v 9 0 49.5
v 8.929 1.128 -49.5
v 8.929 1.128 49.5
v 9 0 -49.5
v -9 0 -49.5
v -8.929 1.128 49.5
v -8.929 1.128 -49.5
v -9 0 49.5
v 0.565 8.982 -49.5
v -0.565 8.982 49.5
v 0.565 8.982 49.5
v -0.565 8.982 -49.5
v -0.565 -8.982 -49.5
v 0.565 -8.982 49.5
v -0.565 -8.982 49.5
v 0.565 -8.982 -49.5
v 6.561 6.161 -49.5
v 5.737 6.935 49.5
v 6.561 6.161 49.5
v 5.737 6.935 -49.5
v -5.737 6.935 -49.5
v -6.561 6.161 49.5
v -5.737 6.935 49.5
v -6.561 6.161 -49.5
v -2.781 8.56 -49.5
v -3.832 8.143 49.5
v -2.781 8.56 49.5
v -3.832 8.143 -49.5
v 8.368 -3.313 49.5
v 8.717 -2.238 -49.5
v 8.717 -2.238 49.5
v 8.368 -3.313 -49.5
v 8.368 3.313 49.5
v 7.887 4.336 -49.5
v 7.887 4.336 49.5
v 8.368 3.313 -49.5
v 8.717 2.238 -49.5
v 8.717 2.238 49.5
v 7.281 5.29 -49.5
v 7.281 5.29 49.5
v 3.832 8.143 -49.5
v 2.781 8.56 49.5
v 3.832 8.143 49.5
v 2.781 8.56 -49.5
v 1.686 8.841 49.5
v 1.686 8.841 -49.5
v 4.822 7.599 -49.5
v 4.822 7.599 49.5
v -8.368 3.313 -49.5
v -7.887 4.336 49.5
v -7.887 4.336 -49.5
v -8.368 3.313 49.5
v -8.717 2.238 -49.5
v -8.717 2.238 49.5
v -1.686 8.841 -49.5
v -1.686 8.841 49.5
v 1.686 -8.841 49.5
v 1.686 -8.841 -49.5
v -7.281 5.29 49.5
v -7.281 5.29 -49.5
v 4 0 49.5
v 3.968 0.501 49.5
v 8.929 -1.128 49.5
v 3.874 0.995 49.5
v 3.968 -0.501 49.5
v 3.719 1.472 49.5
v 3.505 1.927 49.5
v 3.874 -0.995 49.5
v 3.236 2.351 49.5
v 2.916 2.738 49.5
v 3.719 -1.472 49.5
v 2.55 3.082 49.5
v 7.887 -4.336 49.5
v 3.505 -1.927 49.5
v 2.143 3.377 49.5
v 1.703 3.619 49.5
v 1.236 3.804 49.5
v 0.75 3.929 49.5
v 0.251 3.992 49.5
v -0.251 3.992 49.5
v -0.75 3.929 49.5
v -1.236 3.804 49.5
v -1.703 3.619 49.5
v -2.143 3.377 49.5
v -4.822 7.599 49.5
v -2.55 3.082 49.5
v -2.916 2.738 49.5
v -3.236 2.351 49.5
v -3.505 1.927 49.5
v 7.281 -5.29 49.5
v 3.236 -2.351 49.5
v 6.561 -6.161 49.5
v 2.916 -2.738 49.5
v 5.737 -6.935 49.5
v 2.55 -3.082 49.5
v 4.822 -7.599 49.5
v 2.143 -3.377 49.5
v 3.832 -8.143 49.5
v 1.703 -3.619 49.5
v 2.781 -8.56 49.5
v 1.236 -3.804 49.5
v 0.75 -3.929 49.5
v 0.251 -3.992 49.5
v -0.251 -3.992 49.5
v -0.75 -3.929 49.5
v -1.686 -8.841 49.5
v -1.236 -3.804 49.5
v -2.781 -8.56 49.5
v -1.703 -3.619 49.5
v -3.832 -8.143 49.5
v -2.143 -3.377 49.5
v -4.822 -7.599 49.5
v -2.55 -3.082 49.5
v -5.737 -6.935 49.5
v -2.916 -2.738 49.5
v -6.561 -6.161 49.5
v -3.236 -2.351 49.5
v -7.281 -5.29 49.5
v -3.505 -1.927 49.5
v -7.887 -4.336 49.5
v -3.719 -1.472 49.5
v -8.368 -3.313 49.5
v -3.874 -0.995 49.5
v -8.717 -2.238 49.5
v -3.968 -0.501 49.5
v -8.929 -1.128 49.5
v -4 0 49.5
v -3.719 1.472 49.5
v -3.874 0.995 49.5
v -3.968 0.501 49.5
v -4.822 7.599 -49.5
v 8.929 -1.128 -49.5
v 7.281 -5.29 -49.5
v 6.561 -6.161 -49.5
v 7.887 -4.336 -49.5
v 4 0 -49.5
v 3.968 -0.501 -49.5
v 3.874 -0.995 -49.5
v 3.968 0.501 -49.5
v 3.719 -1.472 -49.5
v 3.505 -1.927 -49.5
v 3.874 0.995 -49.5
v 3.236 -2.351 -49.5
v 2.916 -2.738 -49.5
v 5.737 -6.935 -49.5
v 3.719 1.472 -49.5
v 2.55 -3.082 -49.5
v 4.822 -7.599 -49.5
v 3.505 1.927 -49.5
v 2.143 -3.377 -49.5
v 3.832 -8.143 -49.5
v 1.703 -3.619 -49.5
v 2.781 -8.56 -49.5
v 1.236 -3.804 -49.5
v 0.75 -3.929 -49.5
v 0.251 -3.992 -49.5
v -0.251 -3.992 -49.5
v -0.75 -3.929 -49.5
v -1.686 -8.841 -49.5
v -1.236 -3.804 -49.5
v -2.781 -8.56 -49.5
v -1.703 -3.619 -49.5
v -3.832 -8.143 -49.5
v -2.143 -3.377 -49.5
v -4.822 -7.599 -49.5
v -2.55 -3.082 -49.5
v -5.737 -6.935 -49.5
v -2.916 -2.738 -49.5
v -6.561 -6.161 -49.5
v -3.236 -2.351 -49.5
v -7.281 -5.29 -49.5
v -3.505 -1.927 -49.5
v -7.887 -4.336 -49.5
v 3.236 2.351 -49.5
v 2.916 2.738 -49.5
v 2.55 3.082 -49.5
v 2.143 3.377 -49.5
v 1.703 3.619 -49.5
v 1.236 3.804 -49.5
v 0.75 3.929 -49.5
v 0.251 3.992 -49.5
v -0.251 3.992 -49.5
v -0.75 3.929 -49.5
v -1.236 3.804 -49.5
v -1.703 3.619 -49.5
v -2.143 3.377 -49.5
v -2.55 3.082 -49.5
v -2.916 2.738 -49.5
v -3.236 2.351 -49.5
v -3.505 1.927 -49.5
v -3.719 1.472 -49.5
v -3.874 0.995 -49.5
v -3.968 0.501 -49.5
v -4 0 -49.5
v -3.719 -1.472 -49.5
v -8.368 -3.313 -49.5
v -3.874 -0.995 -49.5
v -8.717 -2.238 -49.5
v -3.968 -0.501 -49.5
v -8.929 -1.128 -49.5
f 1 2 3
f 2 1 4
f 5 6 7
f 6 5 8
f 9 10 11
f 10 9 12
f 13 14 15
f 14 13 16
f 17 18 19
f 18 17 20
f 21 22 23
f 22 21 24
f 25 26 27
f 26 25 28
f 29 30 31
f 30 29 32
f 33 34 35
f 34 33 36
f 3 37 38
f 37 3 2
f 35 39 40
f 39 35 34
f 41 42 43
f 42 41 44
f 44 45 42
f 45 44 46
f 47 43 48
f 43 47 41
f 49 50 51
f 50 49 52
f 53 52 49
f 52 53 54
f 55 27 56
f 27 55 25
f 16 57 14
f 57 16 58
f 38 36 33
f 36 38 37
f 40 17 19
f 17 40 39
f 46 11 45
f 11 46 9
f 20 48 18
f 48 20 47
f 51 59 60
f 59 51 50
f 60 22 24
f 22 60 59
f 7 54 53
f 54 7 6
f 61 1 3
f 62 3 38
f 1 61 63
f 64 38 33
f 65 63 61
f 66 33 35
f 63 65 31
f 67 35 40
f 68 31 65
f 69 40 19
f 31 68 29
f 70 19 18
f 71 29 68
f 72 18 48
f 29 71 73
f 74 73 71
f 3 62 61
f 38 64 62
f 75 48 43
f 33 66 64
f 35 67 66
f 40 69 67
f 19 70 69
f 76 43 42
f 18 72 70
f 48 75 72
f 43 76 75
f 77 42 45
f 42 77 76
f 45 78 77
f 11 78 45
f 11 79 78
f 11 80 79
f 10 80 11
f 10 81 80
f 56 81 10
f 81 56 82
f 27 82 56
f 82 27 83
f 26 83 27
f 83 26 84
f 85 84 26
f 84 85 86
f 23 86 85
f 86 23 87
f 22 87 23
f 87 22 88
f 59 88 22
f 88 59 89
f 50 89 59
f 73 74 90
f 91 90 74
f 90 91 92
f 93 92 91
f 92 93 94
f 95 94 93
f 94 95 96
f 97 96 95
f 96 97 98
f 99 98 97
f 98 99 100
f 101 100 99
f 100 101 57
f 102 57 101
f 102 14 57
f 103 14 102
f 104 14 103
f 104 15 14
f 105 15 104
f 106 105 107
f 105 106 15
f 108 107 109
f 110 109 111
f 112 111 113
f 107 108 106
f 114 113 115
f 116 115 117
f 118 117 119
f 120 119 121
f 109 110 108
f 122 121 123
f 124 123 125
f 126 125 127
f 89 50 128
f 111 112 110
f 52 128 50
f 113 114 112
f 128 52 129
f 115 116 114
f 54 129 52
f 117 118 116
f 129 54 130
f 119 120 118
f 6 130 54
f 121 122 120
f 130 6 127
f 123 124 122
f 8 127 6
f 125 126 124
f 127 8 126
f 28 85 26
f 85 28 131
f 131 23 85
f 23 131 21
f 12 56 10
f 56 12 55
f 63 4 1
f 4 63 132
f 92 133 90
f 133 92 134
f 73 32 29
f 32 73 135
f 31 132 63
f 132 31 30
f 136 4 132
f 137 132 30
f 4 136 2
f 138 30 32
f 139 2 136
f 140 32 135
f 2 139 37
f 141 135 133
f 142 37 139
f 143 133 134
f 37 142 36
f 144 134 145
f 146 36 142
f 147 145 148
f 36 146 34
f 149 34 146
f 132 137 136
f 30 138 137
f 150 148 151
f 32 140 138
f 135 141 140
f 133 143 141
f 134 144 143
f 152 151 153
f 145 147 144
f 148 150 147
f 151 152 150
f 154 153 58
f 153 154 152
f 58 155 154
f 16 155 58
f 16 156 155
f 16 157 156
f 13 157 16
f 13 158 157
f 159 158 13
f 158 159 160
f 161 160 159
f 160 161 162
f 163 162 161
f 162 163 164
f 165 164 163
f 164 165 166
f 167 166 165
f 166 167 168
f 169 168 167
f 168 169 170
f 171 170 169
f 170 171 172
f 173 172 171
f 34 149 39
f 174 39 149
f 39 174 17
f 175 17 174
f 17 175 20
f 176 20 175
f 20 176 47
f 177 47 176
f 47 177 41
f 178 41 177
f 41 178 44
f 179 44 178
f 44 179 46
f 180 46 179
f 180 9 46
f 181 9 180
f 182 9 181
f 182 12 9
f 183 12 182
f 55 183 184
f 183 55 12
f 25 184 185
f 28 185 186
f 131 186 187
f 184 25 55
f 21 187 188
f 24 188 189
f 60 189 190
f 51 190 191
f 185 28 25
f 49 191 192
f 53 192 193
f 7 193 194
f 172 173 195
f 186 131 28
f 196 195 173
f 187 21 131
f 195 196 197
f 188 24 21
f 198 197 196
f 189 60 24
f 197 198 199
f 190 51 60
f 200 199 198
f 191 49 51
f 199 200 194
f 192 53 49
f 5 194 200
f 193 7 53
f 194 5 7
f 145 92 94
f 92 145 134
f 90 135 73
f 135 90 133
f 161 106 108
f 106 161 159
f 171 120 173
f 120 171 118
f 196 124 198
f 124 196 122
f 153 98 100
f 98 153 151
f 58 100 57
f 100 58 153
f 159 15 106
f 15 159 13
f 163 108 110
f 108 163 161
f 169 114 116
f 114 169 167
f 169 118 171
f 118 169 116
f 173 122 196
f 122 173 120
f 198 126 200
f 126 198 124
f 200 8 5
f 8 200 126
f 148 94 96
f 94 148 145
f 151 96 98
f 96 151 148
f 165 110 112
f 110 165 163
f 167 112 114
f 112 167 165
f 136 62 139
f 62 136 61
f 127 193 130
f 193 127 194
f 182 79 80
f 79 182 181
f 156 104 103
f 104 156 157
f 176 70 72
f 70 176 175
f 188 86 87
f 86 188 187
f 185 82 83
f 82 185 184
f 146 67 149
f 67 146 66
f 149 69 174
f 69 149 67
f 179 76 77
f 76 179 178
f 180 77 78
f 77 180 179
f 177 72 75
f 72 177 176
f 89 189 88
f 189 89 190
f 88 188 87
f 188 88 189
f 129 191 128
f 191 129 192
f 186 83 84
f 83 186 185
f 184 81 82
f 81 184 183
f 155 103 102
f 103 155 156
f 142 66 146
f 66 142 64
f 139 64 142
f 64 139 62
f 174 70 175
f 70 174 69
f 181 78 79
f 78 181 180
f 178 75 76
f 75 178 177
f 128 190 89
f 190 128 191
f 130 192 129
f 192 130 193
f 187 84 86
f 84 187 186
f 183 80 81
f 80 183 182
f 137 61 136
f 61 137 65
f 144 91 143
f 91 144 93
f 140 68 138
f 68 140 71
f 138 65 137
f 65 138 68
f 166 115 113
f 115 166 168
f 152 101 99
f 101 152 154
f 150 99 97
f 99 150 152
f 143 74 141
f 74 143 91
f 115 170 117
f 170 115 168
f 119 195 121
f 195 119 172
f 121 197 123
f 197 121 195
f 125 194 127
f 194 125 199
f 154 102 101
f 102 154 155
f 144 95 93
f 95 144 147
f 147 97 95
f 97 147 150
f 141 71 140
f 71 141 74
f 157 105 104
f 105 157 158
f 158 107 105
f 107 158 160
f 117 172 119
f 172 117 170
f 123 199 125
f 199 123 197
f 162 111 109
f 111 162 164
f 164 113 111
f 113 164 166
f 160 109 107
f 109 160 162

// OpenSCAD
$fn = 50;


difference() {
	union() {
		translate(v = [0, 0, -49.5000000000]) {
			cylinder(h = 99, r = 9.0000000000);
		}
	}
	union() {
		translate(v = [0, 0, -100.0000000000]) {
			cylinder(h = 200, r = 4.0000000000);
		}
	}
}
